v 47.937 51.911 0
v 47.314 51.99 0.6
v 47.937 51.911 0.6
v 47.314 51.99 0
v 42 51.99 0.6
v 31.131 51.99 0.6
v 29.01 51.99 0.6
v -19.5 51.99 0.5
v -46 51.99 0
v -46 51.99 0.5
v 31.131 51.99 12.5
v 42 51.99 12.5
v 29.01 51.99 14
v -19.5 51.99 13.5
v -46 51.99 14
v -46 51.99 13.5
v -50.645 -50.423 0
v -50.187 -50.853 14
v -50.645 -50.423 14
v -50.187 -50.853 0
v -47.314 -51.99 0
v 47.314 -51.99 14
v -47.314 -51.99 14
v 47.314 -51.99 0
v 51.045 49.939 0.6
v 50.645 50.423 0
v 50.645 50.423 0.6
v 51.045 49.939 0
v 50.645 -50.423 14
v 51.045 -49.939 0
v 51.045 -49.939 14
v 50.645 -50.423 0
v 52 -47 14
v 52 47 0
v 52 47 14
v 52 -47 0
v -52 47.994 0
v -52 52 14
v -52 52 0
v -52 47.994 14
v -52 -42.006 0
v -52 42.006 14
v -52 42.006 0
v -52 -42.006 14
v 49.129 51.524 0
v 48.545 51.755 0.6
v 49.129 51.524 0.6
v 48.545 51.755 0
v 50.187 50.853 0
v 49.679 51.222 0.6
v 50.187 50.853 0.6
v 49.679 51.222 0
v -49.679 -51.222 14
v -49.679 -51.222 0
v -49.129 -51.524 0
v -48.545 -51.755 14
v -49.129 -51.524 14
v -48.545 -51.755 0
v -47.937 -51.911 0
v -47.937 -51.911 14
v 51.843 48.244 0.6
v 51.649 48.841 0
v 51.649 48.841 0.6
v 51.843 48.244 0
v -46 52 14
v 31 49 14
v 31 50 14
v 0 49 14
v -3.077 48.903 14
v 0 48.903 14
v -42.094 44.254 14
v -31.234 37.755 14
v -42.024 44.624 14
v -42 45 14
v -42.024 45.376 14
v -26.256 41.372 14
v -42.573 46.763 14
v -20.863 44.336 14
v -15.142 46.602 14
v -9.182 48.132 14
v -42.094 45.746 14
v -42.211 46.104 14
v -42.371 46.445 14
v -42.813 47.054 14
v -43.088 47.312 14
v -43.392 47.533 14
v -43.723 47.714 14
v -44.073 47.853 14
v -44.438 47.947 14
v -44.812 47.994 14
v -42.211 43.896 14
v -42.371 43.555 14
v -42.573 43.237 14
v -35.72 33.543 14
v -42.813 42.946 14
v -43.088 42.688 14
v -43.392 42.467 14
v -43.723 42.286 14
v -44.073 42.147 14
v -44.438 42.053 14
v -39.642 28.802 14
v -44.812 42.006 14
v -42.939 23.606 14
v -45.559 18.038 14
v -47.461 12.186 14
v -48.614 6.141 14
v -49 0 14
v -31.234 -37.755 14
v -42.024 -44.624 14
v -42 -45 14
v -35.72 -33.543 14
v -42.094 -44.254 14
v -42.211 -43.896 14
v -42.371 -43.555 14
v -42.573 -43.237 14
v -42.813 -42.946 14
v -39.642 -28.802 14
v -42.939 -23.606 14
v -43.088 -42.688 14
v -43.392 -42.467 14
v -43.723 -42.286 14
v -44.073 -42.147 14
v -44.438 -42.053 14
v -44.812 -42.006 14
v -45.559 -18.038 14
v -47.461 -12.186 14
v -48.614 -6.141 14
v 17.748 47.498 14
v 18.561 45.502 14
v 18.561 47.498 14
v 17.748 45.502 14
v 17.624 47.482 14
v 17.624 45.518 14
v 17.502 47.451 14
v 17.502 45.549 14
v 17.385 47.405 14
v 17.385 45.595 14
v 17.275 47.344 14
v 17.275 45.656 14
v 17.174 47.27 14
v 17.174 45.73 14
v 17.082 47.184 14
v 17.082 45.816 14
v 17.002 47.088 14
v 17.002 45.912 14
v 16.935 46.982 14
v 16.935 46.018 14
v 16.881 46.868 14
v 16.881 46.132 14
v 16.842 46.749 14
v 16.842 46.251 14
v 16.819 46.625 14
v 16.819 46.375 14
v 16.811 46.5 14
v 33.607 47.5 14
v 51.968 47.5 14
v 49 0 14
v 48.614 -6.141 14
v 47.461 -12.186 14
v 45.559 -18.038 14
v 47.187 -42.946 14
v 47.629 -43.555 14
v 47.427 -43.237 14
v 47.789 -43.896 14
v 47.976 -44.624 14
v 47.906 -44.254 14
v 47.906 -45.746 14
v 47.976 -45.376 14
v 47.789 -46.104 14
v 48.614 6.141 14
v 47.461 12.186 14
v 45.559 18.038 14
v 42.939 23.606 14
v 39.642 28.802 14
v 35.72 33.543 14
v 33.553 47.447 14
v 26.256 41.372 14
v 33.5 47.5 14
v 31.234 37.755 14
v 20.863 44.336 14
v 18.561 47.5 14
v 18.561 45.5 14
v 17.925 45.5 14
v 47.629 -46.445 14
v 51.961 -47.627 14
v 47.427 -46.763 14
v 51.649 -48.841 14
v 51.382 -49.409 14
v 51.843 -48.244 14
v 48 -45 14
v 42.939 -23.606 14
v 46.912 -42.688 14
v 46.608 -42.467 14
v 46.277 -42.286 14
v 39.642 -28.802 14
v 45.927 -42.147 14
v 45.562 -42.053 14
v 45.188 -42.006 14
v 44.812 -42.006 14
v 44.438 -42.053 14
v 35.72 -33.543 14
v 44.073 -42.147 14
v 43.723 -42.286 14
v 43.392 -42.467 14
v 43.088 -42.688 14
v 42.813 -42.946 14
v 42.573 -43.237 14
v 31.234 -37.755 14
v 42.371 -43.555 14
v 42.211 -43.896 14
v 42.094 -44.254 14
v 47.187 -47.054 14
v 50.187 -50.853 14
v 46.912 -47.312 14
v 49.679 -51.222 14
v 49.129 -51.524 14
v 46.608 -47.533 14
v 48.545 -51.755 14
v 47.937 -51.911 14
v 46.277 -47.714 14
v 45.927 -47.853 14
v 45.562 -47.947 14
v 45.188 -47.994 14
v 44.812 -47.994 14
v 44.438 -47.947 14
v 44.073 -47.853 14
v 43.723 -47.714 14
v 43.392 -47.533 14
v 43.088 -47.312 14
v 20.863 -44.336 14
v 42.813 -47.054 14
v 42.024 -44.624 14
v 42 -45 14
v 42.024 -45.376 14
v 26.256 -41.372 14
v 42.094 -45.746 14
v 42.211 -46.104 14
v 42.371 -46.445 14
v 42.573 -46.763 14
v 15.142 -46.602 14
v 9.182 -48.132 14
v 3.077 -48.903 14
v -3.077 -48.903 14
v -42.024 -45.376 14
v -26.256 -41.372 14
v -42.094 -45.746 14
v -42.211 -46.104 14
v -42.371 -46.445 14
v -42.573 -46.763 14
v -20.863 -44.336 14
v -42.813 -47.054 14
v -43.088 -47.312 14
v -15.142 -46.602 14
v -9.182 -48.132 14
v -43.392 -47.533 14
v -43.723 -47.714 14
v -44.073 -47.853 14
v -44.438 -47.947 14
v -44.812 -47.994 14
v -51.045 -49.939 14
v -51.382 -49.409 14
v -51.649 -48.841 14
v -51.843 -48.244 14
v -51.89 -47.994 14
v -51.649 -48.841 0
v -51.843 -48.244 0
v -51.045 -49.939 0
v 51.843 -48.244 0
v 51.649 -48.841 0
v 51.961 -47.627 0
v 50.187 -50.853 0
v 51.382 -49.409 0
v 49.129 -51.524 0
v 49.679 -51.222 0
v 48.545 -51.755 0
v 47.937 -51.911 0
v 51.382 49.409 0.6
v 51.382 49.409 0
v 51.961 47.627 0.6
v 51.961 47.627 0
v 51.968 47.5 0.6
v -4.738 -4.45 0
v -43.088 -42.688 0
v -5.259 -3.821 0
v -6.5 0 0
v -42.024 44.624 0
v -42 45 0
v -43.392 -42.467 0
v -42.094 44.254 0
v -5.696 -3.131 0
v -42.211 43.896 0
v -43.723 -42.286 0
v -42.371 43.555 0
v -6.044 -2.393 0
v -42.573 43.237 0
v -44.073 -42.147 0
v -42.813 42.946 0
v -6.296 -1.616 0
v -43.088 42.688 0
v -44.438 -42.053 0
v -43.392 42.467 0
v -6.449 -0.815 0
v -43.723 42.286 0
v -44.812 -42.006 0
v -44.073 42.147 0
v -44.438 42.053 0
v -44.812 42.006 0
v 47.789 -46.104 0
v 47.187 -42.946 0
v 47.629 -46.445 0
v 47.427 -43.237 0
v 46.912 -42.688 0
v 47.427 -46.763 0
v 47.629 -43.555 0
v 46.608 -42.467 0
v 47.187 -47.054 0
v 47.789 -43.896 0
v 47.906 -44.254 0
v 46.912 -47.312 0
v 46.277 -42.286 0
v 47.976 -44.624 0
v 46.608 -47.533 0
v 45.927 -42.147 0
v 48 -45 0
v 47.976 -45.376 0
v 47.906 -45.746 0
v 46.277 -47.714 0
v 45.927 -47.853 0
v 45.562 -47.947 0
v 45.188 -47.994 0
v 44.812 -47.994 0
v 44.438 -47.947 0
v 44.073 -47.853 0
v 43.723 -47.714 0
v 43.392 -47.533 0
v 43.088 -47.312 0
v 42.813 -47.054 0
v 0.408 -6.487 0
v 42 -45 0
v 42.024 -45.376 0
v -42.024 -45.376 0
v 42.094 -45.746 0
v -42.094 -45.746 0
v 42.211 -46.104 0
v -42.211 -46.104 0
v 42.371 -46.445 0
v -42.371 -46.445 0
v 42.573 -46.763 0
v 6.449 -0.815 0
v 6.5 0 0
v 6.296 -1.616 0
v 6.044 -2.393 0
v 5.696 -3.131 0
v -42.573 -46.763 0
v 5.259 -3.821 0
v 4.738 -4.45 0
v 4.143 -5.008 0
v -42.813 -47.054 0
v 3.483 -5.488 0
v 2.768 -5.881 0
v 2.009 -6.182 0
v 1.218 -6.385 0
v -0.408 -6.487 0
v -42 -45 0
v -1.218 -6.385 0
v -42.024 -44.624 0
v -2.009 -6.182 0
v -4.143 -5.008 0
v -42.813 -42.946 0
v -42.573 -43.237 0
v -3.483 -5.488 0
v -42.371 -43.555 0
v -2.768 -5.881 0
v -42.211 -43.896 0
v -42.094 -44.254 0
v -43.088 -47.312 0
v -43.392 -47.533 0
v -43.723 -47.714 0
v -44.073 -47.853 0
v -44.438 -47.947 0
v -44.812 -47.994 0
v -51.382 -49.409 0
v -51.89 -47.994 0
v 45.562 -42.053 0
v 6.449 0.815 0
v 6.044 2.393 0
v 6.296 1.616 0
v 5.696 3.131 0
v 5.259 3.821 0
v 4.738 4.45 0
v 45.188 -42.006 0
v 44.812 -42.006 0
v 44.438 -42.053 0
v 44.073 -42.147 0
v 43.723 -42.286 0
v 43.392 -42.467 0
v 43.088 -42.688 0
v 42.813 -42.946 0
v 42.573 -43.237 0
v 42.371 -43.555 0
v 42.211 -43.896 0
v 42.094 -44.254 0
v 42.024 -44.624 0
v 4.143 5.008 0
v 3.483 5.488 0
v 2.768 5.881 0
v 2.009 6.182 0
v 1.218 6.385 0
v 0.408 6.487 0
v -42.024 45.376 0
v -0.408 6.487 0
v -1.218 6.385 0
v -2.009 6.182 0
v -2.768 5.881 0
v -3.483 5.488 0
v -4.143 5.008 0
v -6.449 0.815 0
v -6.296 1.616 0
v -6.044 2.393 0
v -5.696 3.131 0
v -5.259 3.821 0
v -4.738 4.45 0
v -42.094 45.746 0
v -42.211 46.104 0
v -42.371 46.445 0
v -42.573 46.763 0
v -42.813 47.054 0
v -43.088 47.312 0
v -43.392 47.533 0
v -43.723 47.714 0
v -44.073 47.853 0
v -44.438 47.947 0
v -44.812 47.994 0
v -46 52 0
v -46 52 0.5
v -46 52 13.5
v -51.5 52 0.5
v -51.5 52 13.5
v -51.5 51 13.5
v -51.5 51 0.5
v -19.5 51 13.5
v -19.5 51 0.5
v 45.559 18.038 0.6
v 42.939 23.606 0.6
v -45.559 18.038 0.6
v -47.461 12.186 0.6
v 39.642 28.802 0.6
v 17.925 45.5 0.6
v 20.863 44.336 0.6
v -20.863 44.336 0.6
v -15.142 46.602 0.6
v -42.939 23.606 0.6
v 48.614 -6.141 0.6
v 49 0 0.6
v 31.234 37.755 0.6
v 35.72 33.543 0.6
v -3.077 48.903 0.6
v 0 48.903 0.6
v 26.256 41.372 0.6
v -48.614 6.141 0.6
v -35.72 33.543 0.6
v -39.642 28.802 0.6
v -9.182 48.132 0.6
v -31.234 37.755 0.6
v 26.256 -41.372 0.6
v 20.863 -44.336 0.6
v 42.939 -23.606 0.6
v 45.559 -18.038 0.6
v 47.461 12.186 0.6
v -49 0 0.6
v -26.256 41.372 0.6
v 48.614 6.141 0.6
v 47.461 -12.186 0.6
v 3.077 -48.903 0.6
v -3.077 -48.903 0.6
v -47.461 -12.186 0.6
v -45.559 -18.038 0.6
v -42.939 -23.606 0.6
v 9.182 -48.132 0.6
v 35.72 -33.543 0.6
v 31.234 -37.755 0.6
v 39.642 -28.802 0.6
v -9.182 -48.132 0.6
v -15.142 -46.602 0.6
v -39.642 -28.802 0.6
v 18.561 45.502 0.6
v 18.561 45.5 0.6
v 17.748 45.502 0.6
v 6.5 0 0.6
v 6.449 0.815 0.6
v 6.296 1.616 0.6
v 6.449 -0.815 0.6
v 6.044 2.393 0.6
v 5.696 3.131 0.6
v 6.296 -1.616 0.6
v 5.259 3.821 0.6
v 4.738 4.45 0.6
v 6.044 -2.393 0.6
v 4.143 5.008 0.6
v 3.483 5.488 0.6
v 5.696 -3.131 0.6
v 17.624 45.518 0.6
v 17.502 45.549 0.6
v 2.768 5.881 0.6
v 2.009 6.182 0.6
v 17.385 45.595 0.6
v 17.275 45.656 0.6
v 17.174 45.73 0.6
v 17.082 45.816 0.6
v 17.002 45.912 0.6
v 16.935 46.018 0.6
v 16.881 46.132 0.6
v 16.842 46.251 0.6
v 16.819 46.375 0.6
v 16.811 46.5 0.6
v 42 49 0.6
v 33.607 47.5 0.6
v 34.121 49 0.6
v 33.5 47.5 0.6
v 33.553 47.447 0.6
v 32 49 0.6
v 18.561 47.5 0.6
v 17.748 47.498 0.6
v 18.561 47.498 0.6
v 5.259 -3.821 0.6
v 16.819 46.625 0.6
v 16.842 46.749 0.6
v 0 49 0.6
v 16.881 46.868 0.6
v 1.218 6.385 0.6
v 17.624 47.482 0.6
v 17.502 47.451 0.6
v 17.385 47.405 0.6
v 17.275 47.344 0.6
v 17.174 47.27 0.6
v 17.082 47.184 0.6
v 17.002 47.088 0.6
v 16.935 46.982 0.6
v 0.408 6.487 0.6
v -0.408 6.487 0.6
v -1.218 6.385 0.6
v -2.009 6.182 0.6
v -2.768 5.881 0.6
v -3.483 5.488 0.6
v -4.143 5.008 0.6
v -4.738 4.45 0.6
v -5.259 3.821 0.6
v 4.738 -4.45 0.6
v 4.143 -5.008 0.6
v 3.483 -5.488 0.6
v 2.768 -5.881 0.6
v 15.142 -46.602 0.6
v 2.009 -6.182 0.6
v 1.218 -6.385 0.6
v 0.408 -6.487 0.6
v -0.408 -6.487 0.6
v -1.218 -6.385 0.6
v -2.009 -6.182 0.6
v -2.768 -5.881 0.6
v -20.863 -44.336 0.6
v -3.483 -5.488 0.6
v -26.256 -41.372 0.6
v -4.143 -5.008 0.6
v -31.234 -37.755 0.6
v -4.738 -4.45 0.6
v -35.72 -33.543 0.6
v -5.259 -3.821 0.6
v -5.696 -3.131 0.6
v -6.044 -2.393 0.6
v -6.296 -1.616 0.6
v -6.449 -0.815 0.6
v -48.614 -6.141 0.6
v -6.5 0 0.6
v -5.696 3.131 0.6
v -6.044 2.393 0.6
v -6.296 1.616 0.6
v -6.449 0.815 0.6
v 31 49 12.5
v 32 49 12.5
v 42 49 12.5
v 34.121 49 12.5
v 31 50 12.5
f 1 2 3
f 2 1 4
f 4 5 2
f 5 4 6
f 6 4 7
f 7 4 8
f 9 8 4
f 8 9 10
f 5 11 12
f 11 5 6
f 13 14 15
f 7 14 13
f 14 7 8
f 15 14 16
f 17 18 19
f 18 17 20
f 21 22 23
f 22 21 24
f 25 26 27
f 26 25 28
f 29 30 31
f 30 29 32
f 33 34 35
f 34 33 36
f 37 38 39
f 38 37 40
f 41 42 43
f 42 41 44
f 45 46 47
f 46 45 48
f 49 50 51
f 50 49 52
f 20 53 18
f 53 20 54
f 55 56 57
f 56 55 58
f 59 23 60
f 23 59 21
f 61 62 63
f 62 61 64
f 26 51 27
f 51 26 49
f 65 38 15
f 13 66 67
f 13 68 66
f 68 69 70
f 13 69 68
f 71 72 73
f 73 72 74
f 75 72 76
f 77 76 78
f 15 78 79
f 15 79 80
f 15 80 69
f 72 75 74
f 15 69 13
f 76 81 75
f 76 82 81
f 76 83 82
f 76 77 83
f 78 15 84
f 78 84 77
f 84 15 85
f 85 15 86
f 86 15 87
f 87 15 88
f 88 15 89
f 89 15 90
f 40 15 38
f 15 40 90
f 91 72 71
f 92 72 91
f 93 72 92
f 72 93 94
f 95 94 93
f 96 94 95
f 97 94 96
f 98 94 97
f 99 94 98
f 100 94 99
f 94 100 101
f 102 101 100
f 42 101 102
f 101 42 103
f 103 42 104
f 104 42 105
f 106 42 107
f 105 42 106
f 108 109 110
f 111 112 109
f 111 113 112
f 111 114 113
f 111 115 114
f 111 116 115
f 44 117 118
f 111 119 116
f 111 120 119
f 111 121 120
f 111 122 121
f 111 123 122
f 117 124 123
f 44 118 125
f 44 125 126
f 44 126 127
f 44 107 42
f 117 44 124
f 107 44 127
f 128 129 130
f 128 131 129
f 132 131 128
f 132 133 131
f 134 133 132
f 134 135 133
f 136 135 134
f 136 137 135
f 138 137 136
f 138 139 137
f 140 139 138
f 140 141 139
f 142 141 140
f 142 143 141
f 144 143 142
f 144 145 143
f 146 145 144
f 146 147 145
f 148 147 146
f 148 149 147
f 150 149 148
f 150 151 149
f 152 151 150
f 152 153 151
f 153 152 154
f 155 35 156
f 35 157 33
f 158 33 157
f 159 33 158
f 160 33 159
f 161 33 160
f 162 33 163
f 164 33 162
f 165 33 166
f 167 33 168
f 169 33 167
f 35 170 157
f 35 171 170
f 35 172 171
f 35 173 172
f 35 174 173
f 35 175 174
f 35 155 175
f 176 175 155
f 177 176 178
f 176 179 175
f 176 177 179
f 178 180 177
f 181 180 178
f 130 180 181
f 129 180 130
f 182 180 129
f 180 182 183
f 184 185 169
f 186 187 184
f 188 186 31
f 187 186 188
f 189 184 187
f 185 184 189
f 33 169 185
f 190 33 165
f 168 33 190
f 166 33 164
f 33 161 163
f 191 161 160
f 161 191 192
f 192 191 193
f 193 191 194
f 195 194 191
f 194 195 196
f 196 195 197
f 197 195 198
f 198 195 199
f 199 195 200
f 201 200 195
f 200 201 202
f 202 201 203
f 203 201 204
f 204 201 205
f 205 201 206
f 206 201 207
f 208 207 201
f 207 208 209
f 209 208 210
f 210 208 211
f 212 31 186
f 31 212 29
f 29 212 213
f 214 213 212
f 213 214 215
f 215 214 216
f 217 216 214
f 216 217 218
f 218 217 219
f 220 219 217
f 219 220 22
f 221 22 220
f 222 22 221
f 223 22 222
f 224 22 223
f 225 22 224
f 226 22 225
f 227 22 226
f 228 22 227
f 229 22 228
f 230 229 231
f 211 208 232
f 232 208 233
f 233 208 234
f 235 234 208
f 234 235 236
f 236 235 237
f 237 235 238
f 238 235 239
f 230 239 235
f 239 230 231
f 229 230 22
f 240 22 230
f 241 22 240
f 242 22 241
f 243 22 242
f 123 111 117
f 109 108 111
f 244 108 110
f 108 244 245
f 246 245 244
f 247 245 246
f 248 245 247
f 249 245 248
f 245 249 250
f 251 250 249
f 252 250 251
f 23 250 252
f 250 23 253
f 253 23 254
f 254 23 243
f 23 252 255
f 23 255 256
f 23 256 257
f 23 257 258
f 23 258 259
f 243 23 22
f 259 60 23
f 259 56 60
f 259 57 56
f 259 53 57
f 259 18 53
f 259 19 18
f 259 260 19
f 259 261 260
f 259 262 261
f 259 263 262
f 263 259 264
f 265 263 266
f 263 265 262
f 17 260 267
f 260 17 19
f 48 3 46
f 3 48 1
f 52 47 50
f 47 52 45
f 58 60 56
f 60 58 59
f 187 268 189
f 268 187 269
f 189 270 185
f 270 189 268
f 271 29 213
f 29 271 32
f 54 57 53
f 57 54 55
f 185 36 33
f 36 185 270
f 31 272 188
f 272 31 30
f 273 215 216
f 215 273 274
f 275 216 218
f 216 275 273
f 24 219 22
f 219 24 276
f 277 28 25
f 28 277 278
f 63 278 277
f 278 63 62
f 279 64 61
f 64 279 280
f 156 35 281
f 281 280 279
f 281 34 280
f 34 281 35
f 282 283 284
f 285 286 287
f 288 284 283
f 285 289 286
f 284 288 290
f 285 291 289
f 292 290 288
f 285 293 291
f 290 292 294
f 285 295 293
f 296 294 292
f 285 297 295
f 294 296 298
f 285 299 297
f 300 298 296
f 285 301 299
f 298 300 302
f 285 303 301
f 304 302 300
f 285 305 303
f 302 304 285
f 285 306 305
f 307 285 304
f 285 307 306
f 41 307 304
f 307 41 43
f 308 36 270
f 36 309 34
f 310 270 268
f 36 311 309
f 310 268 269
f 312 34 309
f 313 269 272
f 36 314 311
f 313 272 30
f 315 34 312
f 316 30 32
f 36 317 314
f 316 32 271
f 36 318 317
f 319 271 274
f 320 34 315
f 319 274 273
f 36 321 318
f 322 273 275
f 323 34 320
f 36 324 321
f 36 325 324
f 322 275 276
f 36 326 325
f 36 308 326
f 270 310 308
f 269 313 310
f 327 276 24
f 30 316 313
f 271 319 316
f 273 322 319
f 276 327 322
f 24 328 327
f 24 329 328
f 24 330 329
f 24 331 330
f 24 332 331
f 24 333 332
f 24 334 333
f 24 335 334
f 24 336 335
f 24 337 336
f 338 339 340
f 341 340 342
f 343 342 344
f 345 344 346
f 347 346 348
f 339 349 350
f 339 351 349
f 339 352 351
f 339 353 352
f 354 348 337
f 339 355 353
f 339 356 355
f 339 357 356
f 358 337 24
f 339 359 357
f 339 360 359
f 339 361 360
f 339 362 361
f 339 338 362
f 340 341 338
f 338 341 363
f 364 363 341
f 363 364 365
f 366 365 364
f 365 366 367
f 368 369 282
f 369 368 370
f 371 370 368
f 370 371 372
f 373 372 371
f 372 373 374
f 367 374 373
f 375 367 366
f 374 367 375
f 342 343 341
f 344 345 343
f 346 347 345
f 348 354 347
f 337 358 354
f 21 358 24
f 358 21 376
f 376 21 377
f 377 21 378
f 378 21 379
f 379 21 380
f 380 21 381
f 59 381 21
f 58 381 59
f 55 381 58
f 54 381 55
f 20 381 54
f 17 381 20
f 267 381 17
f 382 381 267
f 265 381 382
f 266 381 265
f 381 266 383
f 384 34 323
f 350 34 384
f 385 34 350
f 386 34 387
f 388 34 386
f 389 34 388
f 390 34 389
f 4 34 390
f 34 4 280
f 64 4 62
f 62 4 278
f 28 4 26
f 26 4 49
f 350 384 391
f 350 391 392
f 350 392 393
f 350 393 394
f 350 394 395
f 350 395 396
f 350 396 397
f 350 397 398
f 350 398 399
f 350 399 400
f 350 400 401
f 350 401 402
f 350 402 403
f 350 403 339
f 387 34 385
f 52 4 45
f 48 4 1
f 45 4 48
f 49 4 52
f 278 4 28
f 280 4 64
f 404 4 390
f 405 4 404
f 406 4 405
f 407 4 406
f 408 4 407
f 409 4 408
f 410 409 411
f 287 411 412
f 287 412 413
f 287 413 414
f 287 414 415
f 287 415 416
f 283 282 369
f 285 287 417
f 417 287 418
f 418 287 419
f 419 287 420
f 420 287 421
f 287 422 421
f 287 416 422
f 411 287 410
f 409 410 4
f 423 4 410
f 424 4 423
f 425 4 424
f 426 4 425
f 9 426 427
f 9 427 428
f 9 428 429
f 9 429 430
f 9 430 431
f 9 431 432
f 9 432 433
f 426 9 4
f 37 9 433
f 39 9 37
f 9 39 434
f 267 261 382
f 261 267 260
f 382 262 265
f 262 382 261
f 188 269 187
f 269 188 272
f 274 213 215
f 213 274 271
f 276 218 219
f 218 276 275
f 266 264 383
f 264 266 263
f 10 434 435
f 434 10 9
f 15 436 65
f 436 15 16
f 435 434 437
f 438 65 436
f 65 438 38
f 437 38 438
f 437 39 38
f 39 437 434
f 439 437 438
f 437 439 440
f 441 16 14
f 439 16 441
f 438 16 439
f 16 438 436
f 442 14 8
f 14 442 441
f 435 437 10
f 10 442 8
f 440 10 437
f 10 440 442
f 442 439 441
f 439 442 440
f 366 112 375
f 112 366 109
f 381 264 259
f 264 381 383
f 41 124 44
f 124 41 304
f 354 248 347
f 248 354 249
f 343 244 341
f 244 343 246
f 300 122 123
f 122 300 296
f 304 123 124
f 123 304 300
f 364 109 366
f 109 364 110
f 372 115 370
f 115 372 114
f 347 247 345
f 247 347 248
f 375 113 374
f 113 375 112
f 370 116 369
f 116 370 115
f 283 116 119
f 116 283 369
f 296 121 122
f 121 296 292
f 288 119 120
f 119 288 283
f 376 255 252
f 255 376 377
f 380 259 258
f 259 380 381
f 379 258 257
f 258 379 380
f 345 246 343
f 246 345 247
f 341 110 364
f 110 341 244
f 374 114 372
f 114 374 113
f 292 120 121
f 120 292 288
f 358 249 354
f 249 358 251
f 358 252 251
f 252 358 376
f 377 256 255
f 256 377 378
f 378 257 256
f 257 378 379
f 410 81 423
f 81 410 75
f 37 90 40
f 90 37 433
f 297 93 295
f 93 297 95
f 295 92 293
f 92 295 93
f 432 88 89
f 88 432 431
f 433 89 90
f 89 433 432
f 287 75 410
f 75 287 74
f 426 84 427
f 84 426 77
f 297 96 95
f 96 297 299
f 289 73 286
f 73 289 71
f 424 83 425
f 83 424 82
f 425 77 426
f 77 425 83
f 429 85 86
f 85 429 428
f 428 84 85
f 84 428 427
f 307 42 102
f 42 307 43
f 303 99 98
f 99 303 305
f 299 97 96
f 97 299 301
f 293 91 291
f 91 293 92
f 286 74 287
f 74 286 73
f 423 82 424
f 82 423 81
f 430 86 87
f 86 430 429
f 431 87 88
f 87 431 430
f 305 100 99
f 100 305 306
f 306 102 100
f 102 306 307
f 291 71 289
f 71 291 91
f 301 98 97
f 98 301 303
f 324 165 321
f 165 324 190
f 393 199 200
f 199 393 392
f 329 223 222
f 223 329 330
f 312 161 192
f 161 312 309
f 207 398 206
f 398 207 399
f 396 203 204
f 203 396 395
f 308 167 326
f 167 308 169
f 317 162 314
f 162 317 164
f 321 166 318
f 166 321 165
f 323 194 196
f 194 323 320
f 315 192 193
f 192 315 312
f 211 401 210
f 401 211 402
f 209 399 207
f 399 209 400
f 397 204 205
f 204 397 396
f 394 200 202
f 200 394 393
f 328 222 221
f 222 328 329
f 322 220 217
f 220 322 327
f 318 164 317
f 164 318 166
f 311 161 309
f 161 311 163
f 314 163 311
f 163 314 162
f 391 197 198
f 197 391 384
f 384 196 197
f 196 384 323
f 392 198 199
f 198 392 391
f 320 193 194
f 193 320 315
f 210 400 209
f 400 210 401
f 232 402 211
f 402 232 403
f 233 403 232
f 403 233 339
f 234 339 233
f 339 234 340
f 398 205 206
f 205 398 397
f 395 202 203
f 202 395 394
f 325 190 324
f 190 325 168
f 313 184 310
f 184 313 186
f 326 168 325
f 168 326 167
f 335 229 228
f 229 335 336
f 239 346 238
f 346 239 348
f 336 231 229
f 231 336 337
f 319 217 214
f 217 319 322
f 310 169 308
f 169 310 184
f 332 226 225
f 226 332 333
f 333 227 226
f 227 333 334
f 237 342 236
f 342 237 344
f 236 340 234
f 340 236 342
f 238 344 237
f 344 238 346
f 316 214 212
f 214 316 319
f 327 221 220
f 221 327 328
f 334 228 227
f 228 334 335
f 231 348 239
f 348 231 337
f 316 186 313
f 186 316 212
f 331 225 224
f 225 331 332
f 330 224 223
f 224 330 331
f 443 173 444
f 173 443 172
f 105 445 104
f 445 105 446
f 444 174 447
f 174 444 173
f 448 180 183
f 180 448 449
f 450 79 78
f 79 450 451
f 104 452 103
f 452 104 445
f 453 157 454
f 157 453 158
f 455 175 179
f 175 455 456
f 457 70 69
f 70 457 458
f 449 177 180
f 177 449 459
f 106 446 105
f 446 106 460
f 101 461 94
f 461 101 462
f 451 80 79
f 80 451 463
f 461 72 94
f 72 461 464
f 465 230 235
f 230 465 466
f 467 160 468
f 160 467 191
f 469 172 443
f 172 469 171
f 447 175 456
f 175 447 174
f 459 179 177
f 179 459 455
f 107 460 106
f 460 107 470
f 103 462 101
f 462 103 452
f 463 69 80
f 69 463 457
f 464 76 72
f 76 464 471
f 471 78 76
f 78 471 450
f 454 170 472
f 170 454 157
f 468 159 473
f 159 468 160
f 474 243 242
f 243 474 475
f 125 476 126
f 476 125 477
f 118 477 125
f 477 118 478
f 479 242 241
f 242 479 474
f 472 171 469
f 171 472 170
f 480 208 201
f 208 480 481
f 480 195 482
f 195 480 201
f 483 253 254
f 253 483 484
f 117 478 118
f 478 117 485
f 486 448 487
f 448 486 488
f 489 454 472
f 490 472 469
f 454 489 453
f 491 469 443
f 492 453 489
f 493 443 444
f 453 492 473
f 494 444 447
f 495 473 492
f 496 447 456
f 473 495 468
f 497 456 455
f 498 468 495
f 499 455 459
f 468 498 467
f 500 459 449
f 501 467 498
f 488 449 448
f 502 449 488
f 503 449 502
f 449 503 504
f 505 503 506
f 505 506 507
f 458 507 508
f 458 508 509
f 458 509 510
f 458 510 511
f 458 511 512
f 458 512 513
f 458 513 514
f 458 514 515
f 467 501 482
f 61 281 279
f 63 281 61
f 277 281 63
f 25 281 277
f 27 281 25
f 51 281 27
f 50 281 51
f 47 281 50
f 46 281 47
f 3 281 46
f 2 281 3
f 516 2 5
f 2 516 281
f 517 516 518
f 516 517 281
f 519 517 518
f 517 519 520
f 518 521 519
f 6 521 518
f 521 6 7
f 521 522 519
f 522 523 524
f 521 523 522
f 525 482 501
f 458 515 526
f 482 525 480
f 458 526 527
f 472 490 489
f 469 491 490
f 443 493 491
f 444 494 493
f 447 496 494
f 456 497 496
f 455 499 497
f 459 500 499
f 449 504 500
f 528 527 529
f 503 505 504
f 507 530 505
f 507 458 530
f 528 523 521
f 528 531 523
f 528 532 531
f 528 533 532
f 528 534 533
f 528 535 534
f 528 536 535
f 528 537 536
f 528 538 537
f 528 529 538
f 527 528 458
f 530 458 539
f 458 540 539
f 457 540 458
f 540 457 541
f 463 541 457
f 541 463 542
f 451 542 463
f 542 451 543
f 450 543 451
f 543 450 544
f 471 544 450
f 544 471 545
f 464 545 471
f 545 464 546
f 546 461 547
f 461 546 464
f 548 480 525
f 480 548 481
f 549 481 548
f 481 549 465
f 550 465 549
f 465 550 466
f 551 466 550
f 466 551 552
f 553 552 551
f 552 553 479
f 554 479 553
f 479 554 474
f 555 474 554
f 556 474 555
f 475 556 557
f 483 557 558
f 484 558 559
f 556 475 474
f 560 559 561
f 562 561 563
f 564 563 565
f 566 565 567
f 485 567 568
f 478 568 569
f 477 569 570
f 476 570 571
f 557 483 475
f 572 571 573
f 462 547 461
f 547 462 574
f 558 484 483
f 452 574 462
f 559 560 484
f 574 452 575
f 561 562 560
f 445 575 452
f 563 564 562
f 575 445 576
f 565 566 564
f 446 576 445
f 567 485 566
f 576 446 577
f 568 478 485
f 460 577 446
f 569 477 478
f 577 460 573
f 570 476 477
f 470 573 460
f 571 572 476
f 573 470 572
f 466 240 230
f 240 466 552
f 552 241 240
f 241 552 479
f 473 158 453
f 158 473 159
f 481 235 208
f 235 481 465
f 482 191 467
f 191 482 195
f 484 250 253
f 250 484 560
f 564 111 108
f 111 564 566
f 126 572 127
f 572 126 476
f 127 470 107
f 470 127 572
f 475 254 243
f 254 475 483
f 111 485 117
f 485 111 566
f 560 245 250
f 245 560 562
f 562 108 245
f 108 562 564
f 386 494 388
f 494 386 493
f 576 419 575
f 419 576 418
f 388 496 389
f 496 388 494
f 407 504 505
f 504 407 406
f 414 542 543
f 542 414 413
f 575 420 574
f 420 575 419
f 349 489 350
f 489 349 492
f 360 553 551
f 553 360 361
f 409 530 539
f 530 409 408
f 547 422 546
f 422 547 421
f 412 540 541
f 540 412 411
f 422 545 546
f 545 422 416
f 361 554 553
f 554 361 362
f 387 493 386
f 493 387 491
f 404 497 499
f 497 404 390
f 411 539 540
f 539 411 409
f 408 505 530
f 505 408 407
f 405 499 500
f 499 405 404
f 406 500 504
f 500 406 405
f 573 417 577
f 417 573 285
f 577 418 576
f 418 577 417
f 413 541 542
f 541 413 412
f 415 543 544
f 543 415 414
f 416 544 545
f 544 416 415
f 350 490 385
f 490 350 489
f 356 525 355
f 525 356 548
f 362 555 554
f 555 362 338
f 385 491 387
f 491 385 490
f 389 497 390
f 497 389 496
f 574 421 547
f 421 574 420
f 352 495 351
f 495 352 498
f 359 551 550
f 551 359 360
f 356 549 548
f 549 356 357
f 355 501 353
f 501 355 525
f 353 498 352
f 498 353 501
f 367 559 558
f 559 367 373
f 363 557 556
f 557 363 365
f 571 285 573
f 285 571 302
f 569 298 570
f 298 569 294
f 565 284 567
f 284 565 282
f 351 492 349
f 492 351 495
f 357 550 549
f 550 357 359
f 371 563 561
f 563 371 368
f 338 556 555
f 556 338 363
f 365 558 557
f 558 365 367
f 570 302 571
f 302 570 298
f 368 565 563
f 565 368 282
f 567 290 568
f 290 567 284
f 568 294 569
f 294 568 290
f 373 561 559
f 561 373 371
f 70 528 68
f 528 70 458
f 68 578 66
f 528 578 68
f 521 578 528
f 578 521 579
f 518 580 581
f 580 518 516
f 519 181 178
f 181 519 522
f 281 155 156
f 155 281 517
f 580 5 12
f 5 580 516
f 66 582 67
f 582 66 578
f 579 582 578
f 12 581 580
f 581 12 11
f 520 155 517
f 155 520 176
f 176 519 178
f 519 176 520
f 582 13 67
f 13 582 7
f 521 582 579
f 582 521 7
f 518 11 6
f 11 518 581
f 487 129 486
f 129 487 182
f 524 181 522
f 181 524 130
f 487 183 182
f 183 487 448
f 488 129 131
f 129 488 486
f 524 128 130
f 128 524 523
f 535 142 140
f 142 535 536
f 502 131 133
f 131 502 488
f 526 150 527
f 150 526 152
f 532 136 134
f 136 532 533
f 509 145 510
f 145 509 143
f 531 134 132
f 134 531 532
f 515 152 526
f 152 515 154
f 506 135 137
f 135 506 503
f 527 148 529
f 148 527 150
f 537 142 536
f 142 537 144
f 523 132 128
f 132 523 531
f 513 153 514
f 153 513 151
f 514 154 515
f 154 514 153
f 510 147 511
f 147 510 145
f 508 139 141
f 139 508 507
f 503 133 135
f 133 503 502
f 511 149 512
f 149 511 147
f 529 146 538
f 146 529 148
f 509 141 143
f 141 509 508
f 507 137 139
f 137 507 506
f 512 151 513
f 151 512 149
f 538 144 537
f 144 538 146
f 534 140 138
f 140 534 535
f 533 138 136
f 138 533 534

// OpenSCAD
$fn = 50;


union() {
	difference() {
		union() {
			translate(v = [0, 0, 0]) {
				rotate(a = [0, 0, 0]) {
					hull() {
						translate(v = [-47.0000000000, 47.0000000000, 0]) {
							rotate(a = [0, 0, 0]) {
								translate(v = [0, 0, 0]) {
									rotate(a = [0, 0, 0]) {
										cylinder(h = 14, r = 5);
									}
								}
							}
						}
						translate(v = [47.0000000000, 47.0000000000, 0]) {
							rotate(a = [0, 0, 0]) {
								translate(v = [0, 0, 0]) {
									rotate(a = [0, 0, 0]) {
										cylinder(h = 14, r = 5);
									}
								}
							}
						}
						translate(v = [-47.0000000000, -47.0000000000, 0]) {
							rotate(a = [0, 0, 0]) {
								translate(v = [0, 0, 0]) {
									rotate(a = [0, 0, 0]) {
										cylinder(h = 14, r = 5);
									}
								}
							}
						}
						translate(v = [47.0000000000, -47.0000000000, 0]) {
							rotate(a = [0, 0, 0]) {
								translate(v = [0, 0, 0]) {
									rotate(a = [0, 0, 0]) {
										cylinder(h = 14, r = 5);
									}
								}
							}
						}
					}
				}
			}
			translate(v = [-52.0000000000, 46.0000000000, 0]) {
				rotate(a = [0, 0, 0]) {
					cube(size = [6, 6, 14]);
				}
			}
		}
		union() {
			translate(v = [-51.5000000000, 51.0000000000, 0.5000000000]) {
				rotate(a = [0, 0, 0]) {
					cube(size = [30, 1, 13.0000000000]);
				}
			}
			translate(v = [-52.5000000000, -45.0000000000, -125]) {
				rotate(a = [0, 0, 0]) {
					hull() {
						translate(v = [7.5000000000, 0, 0]) {
							rotate(a = [0, 0, 0]) {
								translate(v = [0, 0, 0]) {
									rotate(a = [0, 0, 0]) {
										cylinder(h = 250, r = 3.0000000000);
									}
								}
							}
						}
						translate(v = [-7.5000000000, 0, 0]) {
							rotate(a = [0, 0, 0]) {
								translate(v = [0, 0, 0]) {
									rotate(a = [0, 0, 0]) {
										cylinder(h = 250, r = 3.0000000000);
									}
								}
							}
						}
					}
				}
			}
			translate(v = [-52.5000000000, 45.0000000000, -125]) {
				rotate(a = [0, 0, 0]) {
					hull() {
						translate(v = [7.5000000000, 0, 0]) {
							rotate(a = [0, 0, 0]) {
								translate(v = [0, 0, 0]) {
									rotate(a = [0, 0, 0]) {
										cylinder(h = 250, r = 3.0000000000);
									}
								}
							}
						}
						translate(v = [-7.5000000000, 0, 0]) {
							rotate(a = [0, 0, 0]) {
								translate(v = [0, 0, 0]) {
									rotate(a = [0, 0, 0]) {
										cylinder(h = 250, r = 3.0000000000);
									}
								}
							}
						}
					}
				}
			}
			translate(v = [45.0000000000, -45.0000000000, -125.0000000000]) {
				rotate(a = [0, 0, 0]) {
					cylinder(h = 250, r = 3.0000000000);
				}
			}
			translate(v = [0, 0, 0.6000000000]) {
				rotate(a = [0, 0, 0]) {
					cylinder(h = 16.4000000000, r = 49.0000000000);
				}
			}
			translate(v = [0, 0, -7.0000000000]) {
				rotate(a = [0, 0, 0]) {
					cylinder(h = 14, r = 6.5000000000);
				}
			}
			translate(v = [0.0000000000, 47.5000000000, 0.6000000000]) {
				rotate(a = [0, 0, 0]) {
					cube(size = [52.0000000000, 1.5000000000, 16.4000000000]);
				}
			}
			translate(v = [42.0000000000, 47.5000000000, 0.6000000000]) {
				rotate(a = [0, 0, 0]) {
					cube(size = [10, 4.5000000000, 16.4000000000]);
				}
			}
			translate(v = [31.0000000000, 47.5000000000, 12.5000000000]) {
				rotate(a = [0, 0, 0]) {
					cube(size = [21, 4.5000000000, 1.5000000000]);
				}
			}
			translate(v = [28.2500000000, 52.7500000000, 0.6000000000]) {
				rotate(a = [0, 0, -45]) {
					cube(size = [7.5000000000, 1.5000000000, 16.4000000000]);
				}
			}
			translate(v = [11.0610000000, 45.5000000000, 0.6000000000]) {
				rotate(a = [0, 0, 0]) {
					cube(size = [7.5000000000, 2, 13.4000000000]);
				}
			}
		}
	}
	union() {
		translate(v = [20.3110000000, 46.5000000000, 0]) {
			rotate(a = [0, 0, 0]) {
				hull() {
					translate(v = [2.5000000000, 0, 0]) {
						rotate(a = [0, 0, 0]) {
							translate(v = [0, 0, 0]) {
								rotate(a = [0, 0, 0]) {
									cylinder(h = 14, r = 1.0000000000);
								}
							}
						}
					}
					translate(v = [-2.5000000000, 0, 0]) {
						rotate(a = [0, 0, 0]) {
							translate(v = [0, 0, 0]) {
								rotate(a = [0, 0, 0]) {
									cylinder(h = 14, r = 1.0000000000);
								}
							}
						}
					}
				}
			}
		}
	}
}
